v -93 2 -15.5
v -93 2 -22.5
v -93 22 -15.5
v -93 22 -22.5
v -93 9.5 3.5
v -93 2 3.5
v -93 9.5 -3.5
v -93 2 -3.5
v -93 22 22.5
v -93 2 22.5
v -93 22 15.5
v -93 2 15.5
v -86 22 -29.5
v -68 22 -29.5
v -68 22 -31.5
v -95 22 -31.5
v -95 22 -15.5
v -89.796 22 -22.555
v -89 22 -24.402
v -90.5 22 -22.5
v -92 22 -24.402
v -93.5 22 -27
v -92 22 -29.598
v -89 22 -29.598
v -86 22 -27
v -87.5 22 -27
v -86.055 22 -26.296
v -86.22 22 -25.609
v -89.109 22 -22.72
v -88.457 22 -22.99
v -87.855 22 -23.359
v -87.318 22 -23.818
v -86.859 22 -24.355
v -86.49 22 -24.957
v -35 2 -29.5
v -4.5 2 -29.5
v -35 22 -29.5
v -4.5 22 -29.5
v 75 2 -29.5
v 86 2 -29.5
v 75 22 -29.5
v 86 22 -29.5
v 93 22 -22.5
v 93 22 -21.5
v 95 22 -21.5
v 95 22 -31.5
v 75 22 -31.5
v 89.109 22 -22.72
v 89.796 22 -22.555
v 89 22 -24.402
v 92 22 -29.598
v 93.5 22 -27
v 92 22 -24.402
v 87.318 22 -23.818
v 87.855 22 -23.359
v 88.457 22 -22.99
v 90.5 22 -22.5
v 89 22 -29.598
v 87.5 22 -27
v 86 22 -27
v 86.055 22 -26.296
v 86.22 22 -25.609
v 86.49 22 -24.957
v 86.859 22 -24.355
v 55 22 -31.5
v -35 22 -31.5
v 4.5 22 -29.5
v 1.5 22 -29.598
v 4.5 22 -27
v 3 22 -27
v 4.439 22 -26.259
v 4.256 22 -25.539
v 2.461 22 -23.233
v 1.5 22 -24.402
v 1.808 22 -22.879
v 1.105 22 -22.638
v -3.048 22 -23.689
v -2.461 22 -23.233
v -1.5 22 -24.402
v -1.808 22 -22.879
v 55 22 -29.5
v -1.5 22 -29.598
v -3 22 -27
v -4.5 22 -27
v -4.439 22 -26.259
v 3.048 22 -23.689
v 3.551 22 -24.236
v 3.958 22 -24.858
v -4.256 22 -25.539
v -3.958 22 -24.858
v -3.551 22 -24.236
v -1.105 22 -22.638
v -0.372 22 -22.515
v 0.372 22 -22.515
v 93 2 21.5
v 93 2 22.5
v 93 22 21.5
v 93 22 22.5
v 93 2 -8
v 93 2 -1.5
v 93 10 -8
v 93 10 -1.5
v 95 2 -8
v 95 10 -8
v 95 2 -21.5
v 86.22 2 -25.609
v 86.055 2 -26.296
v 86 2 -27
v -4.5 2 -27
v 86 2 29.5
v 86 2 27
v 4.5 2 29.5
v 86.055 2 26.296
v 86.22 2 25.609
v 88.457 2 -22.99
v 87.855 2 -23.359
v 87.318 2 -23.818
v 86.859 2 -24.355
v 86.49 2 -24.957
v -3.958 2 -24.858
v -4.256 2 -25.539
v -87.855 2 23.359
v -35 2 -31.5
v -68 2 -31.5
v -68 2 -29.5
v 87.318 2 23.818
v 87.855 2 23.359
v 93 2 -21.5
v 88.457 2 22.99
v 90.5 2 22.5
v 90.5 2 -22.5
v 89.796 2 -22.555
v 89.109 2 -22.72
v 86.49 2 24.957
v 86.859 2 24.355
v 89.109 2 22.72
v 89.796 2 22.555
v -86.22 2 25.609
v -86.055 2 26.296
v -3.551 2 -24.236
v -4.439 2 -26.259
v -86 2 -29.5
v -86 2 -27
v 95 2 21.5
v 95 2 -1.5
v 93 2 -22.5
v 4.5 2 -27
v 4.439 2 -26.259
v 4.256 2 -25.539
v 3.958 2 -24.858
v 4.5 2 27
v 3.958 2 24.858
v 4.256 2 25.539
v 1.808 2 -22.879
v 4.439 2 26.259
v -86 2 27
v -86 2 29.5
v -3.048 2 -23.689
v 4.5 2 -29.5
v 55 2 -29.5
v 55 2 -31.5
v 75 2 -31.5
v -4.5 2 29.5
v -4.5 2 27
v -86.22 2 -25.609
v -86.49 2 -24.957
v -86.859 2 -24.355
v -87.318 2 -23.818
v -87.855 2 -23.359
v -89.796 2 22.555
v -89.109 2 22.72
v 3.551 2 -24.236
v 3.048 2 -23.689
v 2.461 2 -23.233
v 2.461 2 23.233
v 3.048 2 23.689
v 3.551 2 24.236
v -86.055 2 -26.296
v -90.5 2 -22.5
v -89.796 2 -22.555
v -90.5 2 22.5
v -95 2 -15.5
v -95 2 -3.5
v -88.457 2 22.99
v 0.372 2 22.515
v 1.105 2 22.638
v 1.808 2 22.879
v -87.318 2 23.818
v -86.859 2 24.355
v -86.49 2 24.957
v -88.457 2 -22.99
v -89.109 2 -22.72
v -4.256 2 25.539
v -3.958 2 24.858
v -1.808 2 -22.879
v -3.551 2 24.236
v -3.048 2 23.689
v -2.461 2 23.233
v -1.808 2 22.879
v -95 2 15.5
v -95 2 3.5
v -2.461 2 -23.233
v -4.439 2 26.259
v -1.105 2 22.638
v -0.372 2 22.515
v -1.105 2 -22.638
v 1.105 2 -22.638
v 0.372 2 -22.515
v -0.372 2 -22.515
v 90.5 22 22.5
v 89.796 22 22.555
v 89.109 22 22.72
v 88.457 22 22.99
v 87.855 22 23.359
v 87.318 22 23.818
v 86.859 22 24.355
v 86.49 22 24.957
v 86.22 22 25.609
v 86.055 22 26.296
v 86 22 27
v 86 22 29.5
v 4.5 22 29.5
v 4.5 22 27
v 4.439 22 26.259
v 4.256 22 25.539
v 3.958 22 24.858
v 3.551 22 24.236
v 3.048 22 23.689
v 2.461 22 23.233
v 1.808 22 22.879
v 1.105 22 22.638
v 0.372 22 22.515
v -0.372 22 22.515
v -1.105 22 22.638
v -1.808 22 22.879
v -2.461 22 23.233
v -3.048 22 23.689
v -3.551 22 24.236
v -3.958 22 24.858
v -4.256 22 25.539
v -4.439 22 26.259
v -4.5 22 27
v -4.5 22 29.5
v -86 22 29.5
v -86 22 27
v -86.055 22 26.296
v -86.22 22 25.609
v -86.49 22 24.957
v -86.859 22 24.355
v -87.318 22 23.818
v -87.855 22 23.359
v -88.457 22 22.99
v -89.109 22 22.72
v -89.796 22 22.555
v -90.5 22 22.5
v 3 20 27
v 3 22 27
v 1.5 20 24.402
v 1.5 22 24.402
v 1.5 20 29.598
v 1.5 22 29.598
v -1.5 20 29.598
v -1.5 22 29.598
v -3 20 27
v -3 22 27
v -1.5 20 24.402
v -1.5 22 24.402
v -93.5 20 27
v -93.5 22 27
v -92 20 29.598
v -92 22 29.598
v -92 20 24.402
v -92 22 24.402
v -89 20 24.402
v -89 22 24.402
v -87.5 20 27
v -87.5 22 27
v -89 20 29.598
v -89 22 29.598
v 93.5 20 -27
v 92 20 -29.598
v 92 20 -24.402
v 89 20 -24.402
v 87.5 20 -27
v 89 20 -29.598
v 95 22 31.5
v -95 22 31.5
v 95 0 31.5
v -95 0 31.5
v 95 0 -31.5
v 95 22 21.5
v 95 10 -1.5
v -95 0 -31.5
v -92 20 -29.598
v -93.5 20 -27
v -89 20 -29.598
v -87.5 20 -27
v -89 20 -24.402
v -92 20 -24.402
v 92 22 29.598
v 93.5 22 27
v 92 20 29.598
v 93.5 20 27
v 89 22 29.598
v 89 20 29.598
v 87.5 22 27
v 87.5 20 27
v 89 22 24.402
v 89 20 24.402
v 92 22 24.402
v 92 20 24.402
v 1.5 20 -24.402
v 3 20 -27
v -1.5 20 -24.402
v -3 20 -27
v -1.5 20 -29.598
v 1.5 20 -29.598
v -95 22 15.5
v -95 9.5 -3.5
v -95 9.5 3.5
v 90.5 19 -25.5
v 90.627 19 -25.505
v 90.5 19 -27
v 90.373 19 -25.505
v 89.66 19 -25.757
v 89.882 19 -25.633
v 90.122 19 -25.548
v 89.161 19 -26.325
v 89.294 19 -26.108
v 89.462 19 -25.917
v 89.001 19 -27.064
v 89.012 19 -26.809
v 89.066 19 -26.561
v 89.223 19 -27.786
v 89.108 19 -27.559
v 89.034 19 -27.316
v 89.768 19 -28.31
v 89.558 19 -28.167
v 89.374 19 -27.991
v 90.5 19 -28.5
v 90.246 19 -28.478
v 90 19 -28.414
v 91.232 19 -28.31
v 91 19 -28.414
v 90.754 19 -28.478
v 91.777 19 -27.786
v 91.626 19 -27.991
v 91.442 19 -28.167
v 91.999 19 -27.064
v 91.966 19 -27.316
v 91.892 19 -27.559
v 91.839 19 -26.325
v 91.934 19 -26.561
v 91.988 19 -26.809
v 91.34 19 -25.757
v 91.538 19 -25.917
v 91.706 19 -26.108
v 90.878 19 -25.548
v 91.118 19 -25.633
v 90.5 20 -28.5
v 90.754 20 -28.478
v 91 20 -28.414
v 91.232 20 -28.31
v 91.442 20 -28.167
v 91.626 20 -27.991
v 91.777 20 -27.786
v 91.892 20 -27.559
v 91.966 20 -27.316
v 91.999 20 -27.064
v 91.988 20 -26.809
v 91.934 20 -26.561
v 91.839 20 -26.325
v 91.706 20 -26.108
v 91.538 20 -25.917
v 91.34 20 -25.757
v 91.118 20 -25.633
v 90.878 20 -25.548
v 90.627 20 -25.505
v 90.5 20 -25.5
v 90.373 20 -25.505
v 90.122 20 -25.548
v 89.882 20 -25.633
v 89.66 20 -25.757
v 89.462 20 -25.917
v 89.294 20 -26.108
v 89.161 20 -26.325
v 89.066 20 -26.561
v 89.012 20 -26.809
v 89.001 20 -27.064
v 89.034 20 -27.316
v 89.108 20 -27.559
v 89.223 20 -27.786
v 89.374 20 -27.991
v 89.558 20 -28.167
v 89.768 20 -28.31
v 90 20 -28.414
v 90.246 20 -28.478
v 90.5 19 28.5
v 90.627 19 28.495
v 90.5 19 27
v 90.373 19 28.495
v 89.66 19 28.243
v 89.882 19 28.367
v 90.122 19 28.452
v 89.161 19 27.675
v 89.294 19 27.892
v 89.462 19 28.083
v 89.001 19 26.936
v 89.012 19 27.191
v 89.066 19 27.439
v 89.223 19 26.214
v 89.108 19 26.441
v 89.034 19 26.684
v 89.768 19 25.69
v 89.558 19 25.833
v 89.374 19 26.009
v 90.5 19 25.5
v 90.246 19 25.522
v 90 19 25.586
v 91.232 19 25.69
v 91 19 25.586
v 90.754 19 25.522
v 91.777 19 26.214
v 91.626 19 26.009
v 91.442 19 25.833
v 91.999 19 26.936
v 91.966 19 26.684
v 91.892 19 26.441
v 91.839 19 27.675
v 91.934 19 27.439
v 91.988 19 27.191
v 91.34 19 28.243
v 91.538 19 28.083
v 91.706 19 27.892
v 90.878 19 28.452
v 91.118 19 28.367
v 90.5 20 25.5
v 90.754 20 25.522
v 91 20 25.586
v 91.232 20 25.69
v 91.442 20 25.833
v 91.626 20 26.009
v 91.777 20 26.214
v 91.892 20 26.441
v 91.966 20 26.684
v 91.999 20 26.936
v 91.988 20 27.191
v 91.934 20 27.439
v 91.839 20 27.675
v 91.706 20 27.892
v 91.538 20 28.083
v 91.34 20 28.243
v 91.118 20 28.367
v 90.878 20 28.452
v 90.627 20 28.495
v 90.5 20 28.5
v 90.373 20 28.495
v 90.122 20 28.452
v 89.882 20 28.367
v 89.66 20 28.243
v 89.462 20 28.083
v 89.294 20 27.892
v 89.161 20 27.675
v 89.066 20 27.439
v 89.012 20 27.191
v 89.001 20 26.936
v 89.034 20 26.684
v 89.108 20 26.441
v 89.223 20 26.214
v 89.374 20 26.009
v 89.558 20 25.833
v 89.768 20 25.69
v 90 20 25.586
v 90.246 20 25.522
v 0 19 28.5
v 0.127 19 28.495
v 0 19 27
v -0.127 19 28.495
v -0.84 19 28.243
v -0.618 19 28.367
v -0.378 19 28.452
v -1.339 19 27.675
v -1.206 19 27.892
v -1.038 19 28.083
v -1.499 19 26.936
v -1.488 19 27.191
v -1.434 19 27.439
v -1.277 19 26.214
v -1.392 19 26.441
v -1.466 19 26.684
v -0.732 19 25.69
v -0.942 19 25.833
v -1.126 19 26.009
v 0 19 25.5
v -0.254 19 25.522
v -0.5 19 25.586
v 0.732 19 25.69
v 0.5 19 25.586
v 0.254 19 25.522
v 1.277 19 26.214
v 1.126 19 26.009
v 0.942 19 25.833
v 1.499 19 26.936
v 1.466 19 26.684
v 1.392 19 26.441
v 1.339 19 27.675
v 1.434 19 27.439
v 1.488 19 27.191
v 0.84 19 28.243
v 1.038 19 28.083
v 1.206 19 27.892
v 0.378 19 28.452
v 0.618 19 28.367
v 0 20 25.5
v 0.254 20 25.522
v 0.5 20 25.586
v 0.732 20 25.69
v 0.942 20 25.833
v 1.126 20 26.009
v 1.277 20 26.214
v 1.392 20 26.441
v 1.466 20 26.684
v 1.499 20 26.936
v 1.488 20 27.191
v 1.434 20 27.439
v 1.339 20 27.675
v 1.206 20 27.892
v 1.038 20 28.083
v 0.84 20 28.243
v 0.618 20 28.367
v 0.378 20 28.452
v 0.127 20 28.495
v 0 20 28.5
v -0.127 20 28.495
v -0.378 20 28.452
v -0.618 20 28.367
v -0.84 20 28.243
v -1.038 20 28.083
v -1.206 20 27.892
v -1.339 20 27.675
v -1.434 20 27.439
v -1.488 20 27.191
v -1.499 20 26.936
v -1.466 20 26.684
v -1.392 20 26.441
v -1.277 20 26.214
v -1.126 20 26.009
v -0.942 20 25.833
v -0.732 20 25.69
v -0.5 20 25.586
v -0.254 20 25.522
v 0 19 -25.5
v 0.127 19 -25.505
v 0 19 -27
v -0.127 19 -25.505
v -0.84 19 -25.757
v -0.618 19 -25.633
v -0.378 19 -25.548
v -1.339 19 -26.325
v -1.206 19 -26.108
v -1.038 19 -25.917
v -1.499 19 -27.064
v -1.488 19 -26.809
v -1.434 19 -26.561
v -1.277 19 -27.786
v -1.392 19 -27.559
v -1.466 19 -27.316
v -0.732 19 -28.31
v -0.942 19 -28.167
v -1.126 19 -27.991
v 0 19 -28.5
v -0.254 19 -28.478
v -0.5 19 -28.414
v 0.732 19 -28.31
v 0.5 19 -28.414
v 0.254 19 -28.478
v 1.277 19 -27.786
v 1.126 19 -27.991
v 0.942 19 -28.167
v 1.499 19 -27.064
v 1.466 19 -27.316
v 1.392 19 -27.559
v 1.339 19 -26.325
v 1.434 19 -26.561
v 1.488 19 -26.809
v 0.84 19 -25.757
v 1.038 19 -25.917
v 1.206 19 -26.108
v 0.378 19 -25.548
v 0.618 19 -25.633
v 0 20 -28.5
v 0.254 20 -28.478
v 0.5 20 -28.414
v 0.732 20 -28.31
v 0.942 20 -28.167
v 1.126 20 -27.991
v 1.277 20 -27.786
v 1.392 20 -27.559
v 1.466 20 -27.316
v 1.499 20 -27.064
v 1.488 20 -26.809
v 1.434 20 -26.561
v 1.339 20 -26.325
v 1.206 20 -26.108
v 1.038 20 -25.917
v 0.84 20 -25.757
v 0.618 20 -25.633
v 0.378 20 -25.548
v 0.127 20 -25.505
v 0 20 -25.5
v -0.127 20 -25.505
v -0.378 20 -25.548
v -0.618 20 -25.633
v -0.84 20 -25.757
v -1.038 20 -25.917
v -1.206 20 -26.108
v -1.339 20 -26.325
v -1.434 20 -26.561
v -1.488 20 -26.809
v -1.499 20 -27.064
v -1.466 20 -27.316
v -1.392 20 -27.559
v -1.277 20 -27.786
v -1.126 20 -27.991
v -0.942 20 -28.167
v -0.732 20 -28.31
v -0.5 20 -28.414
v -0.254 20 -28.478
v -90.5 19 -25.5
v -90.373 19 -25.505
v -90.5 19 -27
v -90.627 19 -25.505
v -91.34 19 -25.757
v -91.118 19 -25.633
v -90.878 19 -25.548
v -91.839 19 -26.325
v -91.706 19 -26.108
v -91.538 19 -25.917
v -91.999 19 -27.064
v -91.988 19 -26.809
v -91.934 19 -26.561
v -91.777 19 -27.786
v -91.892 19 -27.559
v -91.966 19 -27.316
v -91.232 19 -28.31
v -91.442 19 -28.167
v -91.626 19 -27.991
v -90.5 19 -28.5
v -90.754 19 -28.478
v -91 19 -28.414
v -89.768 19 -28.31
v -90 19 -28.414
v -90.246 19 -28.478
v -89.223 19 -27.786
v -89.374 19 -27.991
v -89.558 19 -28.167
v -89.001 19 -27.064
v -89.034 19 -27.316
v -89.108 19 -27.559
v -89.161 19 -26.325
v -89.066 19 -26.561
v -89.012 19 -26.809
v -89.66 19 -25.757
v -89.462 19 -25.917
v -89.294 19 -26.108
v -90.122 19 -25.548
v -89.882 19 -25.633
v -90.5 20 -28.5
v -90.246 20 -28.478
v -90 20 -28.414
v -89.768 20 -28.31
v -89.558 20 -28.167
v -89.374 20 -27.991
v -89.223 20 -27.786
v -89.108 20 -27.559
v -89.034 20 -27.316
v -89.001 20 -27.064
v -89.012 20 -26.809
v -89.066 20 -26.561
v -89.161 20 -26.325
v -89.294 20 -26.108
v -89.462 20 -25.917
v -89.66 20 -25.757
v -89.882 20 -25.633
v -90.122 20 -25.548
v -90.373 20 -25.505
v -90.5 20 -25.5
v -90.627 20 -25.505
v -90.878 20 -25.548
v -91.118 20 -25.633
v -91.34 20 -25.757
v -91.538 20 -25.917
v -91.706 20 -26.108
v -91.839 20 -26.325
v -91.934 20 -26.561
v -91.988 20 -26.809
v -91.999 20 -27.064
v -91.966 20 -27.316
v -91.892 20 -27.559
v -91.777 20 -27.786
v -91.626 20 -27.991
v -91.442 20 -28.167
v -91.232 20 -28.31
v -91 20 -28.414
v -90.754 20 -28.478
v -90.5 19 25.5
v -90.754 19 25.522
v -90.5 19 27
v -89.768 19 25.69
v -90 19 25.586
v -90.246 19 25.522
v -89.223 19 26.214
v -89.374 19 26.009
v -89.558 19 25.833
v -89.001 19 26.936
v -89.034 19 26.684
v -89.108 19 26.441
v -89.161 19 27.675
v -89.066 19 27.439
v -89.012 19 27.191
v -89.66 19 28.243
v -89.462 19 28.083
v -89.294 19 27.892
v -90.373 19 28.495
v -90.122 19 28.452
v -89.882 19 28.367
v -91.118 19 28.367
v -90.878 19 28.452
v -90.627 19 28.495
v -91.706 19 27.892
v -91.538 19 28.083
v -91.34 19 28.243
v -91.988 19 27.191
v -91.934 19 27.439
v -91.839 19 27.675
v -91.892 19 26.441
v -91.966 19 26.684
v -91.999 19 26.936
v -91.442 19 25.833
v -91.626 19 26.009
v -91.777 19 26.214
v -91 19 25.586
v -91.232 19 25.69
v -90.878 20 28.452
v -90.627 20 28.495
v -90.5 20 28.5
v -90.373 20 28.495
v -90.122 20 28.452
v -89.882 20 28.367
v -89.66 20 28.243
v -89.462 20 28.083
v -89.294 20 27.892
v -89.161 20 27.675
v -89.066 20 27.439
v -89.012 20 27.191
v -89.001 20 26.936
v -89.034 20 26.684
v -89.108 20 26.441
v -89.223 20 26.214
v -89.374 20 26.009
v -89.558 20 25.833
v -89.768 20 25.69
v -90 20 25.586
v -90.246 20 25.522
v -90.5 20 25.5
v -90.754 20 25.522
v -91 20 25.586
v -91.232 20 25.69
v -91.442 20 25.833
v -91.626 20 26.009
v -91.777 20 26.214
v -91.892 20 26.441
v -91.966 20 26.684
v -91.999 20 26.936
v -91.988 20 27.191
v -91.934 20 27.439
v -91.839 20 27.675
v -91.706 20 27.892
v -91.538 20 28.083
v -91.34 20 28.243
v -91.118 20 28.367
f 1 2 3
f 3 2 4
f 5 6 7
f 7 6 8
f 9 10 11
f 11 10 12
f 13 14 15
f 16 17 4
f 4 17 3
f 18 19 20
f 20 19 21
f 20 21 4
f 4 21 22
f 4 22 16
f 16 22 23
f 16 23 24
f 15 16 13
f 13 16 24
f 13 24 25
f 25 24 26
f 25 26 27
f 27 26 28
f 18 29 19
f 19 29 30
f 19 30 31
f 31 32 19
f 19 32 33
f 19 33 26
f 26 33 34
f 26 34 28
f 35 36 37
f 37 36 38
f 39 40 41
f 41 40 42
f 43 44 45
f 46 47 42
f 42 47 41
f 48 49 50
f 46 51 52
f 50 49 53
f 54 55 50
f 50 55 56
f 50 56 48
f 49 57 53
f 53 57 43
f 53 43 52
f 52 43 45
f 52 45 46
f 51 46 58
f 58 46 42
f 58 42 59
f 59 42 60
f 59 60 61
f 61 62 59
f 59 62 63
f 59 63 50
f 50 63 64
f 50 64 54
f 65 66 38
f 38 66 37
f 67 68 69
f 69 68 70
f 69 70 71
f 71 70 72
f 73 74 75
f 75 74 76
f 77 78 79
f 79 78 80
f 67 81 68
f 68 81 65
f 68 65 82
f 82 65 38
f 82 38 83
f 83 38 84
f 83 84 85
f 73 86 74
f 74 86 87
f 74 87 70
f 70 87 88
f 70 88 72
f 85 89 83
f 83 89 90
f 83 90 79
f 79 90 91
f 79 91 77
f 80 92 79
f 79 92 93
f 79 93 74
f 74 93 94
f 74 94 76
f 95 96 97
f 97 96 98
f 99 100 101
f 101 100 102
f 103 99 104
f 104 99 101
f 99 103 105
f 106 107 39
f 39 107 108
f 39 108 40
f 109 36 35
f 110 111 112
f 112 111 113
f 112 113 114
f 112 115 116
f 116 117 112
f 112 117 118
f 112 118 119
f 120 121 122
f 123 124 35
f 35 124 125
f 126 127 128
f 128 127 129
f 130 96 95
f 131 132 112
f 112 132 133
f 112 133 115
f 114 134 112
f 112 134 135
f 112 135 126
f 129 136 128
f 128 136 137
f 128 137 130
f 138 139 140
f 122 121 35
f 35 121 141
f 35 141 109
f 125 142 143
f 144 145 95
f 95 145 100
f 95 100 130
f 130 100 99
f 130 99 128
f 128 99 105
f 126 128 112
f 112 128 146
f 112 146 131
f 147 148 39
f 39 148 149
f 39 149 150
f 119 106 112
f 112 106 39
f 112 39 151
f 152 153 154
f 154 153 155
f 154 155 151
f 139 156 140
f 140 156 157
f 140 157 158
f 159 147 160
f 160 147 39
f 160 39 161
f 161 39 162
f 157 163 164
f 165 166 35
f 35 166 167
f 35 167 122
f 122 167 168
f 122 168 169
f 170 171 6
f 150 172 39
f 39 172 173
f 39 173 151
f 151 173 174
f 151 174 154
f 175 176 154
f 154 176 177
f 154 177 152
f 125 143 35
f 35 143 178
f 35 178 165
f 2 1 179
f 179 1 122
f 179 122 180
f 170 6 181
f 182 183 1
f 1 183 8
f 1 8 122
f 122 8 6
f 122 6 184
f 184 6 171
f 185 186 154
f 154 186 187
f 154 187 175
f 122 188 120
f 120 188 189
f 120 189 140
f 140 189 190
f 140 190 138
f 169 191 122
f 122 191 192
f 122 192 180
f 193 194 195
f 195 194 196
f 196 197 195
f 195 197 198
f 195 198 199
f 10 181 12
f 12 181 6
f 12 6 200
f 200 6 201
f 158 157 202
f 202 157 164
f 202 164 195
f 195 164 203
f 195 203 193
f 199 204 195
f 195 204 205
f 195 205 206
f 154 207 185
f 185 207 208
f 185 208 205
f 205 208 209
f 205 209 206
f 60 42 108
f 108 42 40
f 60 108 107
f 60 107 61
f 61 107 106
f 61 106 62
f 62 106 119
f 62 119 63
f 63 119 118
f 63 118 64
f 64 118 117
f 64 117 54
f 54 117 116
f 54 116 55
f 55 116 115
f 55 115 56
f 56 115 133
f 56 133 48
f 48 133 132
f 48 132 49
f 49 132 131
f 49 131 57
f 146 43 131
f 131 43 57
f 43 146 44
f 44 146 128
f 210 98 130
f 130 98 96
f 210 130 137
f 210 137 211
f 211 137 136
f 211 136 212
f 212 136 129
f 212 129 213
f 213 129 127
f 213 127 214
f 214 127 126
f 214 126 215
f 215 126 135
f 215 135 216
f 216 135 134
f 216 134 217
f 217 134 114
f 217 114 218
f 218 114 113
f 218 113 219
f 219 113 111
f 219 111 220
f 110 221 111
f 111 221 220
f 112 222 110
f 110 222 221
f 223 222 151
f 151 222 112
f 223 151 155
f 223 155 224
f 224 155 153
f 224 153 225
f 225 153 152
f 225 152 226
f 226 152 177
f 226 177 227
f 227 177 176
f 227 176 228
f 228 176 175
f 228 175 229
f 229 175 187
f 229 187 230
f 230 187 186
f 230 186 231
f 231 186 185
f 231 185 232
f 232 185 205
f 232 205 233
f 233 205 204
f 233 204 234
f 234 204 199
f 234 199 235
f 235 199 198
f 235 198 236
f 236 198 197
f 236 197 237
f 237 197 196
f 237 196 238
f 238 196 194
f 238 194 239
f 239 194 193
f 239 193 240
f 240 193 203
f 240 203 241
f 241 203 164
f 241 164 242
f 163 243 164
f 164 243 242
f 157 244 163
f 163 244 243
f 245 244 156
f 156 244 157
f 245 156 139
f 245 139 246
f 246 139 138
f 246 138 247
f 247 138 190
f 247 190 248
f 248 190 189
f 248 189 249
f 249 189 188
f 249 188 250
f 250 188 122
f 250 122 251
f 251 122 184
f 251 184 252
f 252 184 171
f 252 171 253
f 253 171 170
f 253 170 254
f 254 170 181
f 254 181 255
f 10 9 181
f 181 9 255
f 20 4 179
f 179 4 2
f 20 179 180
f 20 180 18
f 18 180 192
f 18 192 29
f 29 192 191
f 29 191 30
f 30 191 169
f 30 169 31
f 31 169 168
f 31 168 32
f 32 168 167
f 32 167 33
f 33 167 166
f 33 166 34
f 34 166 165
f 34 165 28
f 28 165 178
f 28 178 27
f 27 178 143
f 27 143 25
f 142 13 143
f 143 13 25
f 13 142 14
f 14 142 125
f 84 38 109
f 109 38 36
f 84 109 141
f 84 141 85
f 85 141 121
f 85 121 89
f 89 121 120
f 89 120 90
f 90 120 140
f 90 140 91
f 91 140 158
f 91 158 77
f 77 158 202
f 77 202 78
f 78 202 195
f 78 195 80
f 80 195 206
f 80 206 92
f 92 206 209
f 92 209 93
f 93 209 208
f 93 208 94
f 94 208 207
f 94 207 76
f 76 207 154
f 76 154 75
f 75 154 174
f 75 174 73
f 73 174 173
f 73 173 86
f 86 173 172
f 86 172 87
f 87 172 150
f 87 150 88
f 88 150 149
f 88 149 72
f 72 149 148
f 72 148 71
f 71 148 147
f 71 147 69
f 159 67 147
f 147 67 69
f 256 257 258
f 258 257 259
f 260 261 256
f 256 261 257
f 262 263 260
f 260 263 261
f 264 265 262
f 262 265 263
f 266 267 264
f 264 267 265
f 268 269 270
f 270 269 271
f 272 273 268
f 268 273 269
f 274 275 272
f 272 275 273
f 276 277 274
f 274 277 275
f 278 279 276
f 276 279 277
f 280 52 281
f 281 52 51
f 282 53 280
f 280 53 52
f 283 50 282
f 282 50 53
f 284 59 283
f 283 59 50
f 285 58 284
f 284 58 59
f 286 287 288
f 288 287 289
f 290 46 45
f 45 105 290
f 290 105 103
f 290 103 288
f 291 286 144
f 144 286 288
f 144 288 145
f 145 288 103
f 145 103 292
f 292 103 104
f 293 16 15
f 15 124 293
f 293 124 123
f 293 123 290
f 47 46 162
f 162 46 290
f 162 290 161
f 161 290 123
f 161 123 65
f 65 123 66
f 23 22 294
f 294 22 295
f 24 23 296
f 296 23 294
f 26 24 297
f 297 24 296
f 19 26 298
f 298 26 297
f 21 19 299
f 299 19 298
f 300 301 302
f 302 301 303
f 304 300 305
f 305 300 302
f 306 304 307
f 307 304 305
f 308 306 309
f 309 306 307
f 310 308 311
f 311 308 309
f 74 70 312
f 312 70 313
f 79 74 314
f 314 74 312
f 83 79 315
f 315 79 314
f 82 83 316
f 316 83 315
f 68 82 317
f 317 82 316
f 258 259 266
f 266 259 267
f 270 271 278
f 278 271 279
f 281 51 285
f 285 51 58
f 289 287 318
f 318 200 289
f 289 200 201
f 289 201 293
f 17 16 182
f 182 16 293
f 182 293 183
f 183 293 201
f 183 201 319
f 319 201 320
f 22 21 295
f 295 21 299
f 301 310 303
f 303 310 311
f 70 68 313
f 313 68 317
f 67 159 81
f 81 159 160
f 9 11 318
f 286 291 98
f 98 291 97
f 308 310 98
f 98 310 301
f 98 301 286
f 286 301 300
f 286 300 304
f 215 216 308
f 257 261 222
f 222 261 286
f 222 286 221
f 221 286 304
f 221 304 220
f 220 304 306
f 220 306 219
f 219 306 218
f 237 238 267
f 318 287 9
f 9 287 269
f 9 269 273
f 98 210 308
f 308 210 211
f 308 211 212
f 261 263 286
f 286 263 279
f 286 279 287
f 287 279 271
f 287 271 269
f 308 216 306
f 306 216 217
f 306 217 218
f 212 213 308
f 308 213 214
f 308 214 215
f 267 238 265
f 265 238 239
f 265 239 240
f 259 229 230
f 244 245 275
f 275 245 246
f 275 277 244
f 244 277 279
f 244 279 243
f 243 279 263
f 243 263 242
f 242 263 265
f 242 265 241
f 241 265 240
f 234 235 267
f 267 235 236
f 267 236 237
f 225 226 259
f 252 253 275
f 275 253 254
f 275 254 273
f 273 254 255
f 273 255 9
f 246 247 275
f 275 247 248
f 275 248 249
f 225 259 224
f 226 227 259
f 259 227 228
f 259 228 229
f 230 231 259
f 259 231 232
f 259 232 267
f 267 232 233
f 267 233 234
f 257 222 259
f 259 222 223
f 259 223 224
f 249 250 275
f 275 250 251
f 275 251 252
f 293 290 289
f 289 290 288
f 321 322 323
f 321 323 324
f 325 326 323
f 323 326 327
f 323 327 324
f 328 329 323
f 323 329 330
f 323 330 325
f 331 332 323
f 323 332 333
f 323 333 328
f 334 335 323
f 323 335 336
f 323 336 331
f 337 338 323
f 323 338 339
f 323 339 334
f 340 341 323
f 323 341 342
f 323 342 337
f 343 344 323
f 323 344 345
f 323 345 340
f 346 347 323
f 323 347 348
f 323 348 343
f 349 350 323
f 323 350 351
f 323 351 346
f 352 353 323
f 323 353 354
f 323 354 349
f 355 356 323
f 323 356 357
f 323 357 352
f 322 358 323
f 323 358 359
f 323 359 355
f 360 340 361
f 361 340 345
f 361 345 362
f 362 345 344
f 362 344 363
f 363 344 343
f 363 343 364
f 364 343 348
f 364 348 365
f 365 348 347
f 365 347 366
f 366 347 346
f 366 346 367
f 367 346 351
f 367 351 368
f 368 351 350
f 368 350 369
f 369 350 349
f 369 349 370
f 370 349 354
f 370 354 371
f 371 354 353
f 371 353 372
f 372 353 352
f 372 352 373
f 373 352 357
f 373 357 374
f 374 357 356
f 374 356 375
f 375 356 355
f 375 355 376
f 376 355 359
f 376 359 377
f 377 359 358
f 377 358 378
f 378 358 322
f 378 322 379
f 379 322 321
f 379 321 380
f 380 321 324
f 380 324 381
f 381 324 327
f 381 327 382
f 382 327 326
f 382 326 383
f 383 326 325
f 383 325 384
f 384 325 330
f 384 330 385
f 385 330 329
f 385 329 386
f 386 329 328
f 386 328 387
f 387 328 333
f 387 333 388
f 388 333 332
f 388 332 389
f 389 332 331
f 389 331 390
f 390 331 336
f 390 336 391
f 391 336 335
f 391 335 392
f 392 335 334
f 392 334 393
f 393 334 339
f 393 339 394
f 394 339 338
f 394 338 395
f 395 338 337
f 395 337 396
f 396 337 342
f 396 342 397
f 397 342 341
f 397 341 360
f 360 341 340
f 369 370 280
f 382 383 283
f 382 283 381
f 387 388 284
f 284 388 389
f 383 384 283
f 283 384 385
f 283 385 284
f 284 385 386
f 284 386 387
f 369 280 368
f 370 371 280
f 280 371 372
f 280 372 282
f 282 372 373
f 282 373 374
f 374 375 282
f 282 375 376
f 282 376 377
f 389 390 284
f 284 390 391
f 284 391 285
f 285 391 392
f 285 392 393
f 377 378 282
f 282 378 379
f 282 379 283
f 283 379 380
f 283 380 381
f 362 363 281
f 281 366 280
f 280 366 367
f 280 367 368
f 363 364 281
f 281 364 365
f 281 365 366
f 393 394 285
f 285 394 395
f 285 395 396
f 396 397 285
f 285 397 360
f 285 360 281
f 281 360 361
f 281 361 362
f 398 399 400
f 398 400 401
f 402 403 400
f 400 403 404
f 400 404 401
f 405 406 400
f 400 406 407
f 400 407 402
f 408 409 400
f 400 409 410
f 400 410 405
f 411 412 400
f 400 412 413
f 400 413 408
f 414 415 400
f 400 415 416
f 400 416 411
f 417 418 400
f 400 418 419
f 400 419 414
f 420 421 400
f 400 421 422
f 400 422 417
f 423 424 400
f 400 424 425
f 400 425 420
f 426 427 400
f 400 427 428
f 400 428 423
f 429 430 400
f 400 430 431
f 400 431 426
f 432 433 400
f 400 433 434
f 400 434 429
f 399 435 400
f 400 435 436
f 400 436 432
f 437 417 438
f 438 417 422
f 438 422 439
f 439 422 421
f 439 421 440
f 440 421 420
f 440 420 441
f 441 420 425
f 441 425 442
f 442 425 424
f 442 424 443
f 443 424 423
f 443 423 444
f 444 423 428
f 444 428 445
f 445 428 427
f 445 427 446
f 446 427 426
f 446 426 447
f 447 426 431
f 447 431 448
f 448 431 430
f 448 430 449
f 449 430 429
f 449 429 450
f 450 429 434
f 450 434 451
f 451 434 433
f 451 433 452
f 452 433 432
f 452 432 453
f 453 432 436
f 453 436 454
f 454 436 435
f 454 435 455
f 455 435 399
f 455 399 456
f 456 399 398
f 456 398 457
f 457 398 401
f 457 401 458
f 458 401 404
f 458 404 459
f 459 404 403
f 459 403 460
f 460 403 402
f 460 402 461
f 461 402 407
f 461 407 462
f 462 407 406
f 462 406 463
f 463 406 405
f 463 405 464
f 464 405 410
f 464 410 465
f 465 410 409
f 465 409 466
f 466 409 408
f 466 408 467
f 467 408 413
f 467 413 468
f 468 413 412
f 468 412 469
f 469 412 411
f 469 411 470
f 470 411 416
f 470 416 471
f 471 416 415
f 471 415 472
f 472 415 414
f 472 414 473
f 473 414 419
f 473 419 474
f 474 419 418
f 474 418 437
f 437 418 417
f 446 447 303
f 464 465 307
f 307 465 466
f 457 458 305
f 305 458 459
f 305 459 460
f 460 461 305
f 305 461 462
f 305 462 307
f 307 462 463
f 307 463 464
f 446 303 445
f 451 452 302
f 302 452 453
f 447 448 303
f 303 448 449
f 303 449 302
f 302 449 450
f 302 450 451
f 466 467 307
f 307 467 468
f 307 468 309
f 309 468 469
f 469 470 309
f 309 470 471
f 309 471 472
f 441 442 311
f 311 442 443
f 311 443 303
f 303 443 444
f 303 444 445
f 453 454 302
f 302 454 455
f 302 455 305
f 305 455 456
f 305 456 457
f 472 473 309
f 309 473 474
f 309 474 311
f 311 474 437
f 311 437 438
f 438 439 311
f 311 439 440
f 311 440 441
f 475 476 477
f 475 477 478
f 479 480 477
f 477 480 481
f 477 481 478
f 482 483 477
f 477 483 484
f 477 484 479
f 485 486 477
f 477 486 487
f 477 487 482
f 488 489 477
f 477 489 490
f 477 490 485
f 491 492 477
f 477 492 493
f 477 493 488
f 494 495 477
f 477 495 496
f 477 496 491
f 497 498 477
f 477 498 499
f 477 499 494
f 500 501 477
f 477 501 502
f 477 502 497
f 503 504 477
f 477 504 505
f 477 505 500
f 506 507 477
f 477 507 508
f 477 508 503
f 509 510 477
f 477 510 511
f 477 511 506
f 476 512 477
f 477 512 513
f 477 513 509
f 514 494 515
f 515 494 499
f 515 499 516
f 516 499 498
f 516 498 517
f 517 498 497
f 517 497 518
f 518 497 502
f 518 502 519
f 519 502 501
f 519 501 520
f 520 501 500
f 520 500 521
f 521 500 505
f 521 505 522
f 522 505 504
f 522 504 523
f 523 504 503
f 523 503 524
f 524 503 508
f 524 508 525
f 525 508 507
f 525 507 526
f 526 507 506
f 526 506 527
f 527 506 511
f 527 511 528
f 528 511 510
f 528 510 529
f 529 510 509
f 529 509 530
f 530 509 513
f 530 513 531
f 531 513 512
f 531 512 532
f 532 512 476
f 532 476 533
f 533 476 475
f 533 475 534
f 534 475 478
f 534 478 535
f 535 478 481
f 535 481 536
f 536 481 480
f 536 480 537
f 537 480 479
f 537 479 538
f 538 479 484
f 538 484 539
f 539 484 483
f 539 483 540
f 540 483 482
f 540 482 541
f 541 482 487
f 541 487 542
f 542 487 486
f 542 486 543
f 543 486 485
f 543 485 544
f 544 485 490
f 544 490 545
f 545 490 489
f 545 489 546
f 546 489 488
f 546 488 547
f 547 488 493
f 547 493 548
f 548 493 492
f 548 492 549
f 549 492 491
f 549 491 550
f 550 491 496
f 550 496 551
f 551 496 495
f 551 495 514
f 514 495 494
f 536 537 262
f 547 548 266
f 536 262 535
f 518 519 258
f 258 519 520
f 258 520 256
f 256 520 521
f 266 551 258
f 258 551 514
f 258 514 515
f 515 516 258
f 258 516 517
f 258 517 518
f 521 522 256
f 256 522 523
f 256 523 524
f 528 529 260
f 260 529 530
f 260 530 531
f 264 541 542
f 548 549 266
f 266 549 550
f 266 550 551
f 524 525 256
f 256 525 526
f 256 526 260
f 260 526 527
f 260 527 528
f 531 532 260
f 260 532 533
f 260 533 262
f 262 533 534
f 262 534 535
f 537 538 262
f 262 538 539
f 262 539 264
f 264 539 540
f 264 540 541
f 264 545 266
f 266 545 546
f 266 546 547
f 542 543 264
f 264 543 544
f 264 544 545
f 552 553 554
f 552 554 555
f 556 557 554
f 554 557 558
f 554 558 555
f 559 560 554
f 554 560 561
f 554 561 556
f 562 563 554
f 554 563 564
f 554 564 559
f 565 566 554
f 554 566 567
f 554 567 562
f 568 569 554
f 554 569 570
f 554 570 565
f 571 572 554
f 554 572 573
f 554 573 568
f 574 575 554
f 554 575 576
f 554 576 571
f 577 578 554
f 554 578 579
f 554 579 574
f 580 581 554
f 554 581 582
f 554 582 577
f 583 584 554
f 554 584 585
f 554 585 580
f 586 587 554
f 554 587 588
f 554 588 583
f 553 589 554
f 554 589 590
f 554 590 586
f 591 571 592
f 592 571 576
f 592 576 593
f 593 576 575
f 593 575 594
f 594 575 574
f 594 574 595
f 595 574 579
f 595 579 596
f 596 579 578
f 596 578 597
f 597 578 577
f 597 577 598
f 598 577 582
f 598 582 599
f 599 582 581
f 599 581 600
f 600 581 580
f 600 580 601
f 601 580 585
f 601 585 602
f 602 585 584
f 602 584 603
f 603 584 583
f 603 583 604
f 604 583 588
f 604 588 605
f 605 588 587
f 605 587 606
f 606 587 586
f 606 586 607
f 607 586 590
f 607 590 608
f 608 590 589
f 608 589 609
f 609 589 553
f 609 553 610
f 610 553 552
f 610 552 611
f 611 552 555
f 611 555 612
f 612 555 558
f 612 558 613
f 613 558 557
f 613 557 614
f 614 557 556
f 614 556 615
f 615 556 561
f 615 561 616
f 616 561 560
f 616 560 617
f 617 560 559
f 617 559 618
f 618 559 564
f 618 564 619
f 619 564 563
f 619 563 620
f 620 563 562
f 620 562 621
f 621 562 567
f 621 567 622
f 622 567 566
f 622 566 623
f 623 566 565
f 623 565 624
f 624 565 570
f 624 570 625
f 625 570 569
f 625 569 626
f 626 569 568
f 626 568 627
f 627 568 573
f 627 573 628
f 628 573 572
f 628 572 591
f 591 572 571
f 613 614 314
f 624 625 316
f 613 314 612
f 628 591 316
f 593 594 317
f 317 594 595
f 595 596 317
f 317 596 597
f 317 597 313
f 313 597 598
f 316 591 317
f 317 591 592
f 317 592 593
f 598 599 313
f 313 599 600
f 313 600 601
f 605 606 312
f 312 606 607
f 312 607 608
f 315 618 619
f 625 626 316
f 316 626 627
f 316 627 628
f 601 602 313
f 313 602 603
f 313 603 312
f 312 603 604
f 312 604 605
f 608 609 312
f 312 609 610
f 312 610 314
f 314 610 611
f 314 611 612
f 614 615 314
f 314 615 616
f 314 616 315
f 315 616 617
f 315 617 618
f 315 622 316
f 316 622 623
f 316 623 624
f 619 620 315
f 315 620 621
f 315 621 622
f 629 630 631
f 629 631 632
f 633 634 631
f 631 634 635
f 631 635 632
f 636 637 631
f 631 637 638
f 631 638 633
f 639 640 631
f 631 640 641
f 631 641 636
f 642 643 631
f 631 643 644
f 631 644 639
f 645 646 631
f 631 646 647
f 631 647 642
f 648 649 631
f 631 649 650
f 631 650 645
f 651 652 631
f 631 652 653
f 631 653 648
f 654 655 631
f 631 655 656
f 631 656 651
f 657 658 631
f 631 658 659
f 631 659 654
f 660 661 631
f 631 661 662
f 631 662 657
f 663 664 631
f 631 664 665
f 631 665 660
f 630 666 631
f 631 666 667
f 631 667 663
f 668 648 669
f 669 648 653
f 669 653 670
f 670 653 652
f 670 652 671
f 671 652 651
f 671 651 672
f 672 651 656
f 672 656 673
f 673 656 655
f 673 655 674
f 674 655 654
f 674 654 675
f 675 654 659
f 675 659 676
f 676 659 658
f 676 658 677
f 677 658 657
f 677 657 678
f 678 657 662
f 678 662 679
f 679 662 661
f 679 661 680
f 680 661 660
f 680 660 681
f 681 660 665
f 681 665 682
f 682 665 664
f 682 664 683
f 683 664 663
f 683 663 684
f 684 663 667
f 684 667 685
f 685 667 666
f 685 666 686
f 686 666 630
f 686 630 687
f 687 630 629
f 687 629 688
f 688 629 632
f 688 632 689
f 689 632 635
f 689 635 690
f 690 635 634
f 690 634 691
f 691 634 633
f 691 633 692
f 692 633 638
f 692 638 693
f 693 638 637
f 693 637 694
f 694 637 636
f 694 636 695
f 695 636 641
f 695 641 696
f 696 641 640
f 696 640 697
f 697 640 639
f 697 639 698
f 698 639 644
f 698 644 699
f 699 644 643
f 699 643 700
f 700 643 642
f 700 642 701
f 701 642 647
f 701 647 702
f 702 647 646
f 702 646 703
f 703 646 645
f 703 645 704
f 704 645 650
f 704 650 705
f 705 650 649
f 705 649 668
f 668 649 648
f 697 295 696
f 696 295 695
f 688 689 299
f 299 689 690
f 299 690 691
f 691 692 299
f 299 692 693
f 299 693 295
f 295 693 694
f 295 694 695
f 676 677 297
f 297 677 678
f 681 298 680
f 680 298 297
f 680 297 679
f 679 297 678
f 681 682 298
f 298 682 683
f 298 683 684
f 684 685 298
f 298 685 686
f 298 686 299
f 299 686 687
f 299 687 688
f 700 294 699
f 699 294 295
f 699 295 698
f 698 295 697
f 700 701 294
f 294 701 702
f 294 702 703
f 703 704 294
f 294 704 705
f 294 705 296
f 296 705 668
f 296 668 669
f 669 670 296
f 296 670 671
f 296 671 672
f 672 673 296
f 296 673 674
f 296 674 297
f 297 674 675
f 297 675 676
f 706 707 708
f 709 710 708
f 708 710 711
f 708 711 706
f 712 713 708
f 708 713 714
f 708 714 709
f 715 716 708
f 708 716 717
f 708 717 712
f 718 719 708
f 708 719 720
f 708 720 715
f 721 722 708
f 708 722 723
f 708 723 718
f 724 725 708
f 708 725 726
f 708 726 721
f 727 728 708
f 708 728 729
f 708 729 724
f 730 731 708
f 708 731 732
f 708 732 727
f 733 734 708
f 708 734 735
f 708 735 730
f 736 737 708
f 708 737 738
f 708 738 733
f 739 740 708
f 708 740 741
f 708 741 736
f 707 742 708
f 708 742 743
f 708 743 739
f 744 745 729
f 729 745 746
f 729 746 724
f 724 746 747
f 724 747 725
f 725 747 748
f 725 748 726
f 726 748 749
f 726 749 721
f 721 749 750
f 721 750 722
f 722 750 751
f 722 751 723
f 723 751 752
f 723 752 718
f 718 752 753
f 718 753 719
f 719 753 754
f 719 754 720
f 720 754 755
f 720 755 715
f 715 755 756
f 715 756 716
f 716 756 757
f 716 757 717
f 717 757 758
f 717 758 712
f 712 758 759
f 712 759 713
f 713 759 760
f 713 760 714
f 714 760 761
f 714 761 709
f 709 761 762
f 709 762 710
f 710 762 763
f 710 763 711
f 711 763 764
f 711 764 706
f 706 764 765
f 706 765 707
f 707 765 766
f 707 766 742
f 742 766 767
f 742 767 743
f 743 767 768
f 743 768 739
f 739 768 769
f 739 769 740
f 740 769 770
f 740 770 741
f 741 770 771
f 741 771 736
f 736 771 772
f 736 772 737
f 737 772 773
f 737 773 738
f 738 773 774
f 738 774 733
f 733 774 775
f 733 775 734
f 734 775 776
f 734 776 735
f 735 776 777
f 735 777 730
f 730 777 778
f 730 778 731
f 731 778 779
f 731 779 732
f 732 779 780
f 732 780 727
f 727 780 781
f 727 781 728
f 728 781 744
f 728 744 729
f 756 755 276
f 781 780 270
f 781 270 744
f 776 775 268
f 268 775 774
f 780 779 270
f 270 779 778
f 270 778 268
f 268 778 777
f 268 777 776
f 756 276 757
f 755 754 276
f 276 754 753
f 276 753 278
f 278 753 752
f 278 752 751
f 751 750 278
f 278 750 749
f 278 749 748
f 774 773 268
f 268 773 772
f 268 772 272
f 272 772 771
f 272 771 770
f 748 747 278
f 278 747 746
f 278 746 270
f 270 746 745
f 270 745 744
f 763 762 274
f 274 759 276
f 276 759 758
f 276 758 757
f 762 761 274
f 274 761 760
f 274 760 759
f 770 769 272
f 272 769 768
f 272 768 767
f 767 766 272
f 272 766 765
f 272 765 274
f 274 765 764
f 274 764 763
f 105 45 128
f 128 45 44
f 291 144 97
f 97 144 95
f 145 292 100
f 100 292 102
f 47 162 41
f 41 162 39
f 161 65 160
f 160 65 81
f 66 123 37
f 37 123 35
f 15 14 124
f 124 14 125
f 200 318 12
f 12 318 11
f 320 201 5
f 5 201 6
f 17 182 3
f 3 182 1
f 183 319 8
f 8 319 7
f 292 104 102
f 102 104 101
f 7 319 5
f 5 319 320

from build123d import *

# Parameters (mm, degrees)
BOSS_EXTRUDE1_DEPTH     = 2
SKETCH1_4_R             = 1.5
BOSS_EXTRUDE2_DEPTH     = 19
BOSS_EXTRUDE2_2_DEPTH   = 19
BOSS_EXTRUDE2_3_DEPTH   = 19
BOSS_EXTRUDE2_4_DEPTH   = 19
BOSS_EXTRUDE2_5_DEPTH   = 19
BOSS_EXTRUDE2_6_DEPTH   = 19
SKETCH1_5_R             = 1.5
BOSS_EXTRUDE3_DEPTH     = 20
BOSS_EXTRUDE4_DEPTH     = 22
SKETCH2_W               = 23
SKETCH2_H               = 8
SKETCH2_W_2             = 13.5
SKETCH2_H_2             = 13.3
CUT_EXTRUDE1_DEPTH      = 3
SKETCH3_W               = 20
SKETCH3_H               = 12
SKETCH3_W_2             = 33
CUT_EXTRUDE2_DEPTH      = 3
SKETCH4_W               = 12
SKETCH4_H               = 7.5
CUT_EXTRUDE3_DEPTH      = 3
CUT_EXTRUDE4_DEPTH      = 1
CUT_EXTRUDE4_DEPTH_BACK = 2
SKETCH6_W               = 20
SKETCH6_H               = 8
SKETCH6_W_2             = 33
CUT_EXTRUDE5_DEPTH      = 2
CUT_EXTRUDE6_DEPTH      = 1
CUT_EXTRUDE6_DEPTH_BACK = 2


with BuildPart() as part:
    # Sketch1 → Boss-Extrude1 (new body)
    with BuildSketch(Plane(origin=(0, 0, 0), x_dir=(1, 0, 0), z_dir=(0, 1, 0))):
        with BuildLine():
            ThreePointArc((86, 27), (87.318019485, 23.818019485), (90.5, 22.5))
            Line((90.5, 22.5), (93, 22.5))
            Line((93, 22.5), (93, -22.5))
            Line((93, -22.5), (90.5, -22.5))
            ThreePointArc((90.5, -22.5), (87.318019485, -23.818019485), (86, -27))
            Line((86, -27), (86, -29.5))
            Line((86, -29.5), (4.5, -29.5))
            Line((4.5, -29.5), (4.5, -27))
            ThreePointArc((4.5, -27), (0, -22.5), (-4.5, -27))
            Line((-4.5, -27), (-4.5, -29.5))
            Line((-4.5, -29.5), (-86, -29.5))
            Line((-86, -29.5), (-86, -27))
            ThreePointArc((-86, -27), (-87.318019485, -23.818019485), (-90.5, -22.5))
            Line((-90.5, -22.5), (-93, -22.5))
            Line((-93, -22.5), (-93, 22.5))
            Line((-93, 22.5), (-90.5, 22.5))
            ThreePointArc((-90.5, 22.5), (-87.318019485, 23.818019485), (-86, 27))
            Line((-86, 27), (-86, 29.5))
            Line((-86, 29.5), (-4.5, 29.5))
            Line((-4.5, 29.5), (-4.5, 27))
            ThreePointArc((-4.5, 27), (0, 22.5), (4.5, 27))
            Line((4.5, 27), (4.5, 29.5))
            Line((4.5, 29.5), (86, 29.5))
            Line((86, 29.5), (86, 27))
        make_face()
    extrude(amount=BOSS_EXTRUDE1_DEPTH)



with BuildPart() as body_2:
    # Sketch1<4> → Boss-Extrude2 (new body)
    with BuildSketch(Plane(origin=(0, 0, 0), x_dir=(1, 0, 0), z_dir=(0, 1, 0))):
        with Locations((90.5, 27)):
            Circle(SKETCH1_4_R)
    extrude(amount=BOSS_EXTRUDE2_DEPTH)



with BuildPart() as body_3:
    # Sketch1<4> → Boss-Extrude2 2 (new body)
    with BuildSketch(Plane(origin=(0, 0, 0), x_dir=(1, 0, 0), z_dir=(0, 1, 0))):
        with Locations((90.5, -27)):
            Circle(SKETCH1_4_R)
    extrude(amount=BOSS_EXTRUDE2_2_DEPTH)


with BuildPart() as body_4:
    # Sketch1<4> → Boss-Extrude2 3 (new body)
    with BuildSketch(Plane(origin=(0, 0, 0), x_dir=(1, 0, 0), z_dir=(0, 1, 0))):
        with Locations((0, -27)):
            Circle(SKETCH1_4_R)
    extrude(amount=BOSS_EXTRUDE2_3_DEPTH)


with BuildPart() as body_5:
    # Sketch1<4> → Boss-Extrude2 4 (new body)
    with BuildSketch(Plane(origin=(0, 0, 0), x_dir=(1, 0, 0), z_dir=(0, 1, 0))):
        with Locations((0, 27)):
            Circle(SKETCH1_4_R)
    extrude(amount=BOSS_EXTRUDE2_4_DEPTH)


with BuildPart() as body_6:
    # Sketch1<4> → Boss-Extrude2 5 (new body)
    with BuildSketch(Plane(origin=(0, 0, 0), x_dir=(1, 0, 0), z_dir=(0, 1, 0))):
        with Locations((-90.5, 27)):
            Circle(SKETCH1_4_R)
    extrude(amount=BOSS_EXTRUDE2_5_DEPTH)


with BuildPart() as body_7:
    # Sketch1<4> → Boss-Extrude2 6 (new body)
    with BuildSketch(Plane(origin=(0, 0, 0), x_dir=(1, 0, 0), z_dir=(0, 1, 0))):
        with Locations((-90.5, -27)):
            Circle(SKETCH1_4_R)
    extrude(amount=BOSS_EXTRUDE2_6_DEPTH)


with BuildPart() as body_2_1:
    add(body_2.part)

    add(body_3.part)  # Boss-Extrude3 merges body 3

    add(body_4.part)  # Boss-Extrude3 merges body 4

    add(body_5.part)  # Boss-Extrude3 merges body 5

    add(body_6.part)  # Boss-Extrude3 merges body 6

    add(body_7.part)  # Boss-Extrude3 merges body 7
    # Sketch1<5> → Boss-Extrude3 (add)
    with BuildSketch(Plane(origin=(0, 0, 0), x_dir=(1, 0, 0), z_dir=(0, 1, 0))):
        Polygon((93.5, 27), (92, 24.401923789), (89, 24.401923789), (87.5, 27), (89, 29.598076211), (92, 29.598076211), align=None)
        with Locations((90.5, 27)):
            Circle(SKETCH1_5_R, mode=Mode.SUBTRACT)
        Polygon((89, -29.598076211), (92, -29.598076211), (93.5, -27), (92, -24.401923789), (89, -24.401923789), (87.5, -27), align=None)
        with Locations((90.5, -27)):
            Circle(SKETCH1_5_R, mode=Mode.SUBTRACT)
        Polygon((3, -27), (1.5, -29.598076211), (-1.5, -29.598076211), (-3, -27), (-1.5, -24.401923789), (1.5, -24.401923789), align=None)
        with Locations((0, -27)):
            Circle(SKETCH1_5_R, mode=Mode.SUBTRACT)
        Polygon((-1.5, 24.401923789), (1.5, 24.401923789), (3, 27), (1.5, 29.598076211), (-1.5, 29.598076211), (-3, 27), align=None)
        with Locations((0, 27)):
            Circle(SKETCH1_5_R, mode=Mode.SUBTRACT)
        Polygon((-93.5, -27), (-92, -24.401923789), (-89, -24.401923789), (-87.5, -27), (-89, -29.598076211), (-92, -29.598076211), align=None)
        with Locations((-90.5, -27)):
            Circle(SKETCH1_5_R, mode=Mode.SUBTRACT)
        Polygon((-89, 29.598076211), (-92, 29.598076211), (-93.5, 27), (-92, 24.401923789), (-89, 24.401923789), (-87.5, 27), align=None)
        with Locations((-90.5, 27)):
            Circle(SKETCH1_5_R, mode=Mode.SUBTRACT)
    extrude(amount=BOSS_EXTRUDE3_DEPTH)


with BuildPart() as part_1:
    add(part.part)

    add(body_2_1.part)  # Boss-Extrude4 merges body 2
    # Sketch1<6> → Boss-Extrude4 (add)
    with BuildSketch(Plane(origin=(0, 0, 0), x_dir=(1, 0, 0), z_dir=(0, 1, 0))):
        Polygon((-95, -22.5), (-95, -31.5), (-86, -31.5), (86, -31.5), (95, -31.5), (95, -22.5), (95, 22.5), (95, 31.5), (86, 31.5), (4.5, 31.5), (-4.5, 31.5), (-86, 31.5), (-95, 31.5), (-95, 22.5), align=None)
        Polygon((-89, -29.598076211), (-92, -29.598076211), (-93.5, -27), (-92, -24.401923789), (-89, -24.401923789), (-87.5, -27), align=None, mode=Mode.SUBTRACT)
        Polygon((-1.5, -24.401923789), (1.5, -24.401923789), (3, -27), (1.5, -29.598076211), (-1.5, -29.598076211), (-3, -27), align=None, mode=Mode.SUBTRACT)
        Polygon((92, -29.598076211), (89, -29.598076211), (87.5, -27), (89, -24.401923789), (92, -24.401923789), (93.5, -27), align=None, mode=Mode.SUBTRACT)
        Polygon((-92, 24.401923789), (-93.5, 27), (-92, 29.598076211), (-89, 29.598076211), (-87.5, 27), (-89, 24.401923789), align=None, mode=Mode.SUBTRACT)
        Polygon((1.5, 29.598076211), (3, 27), (1.5, 24.401923789), (-1.5, 24.401923789), (-3, 27), (-1.5, 29.598076211), align=None, mode=Mode.SUBTRACT)
        with BuildLine():
            Line((-93, -22.5), (-93, 22.5))
            Line((-93, 22.5), (-90.5, 22.5))
            ThreePointArc((-90.5, 22.5), (-87.318019485, 23.818019485), (-86, 27))
            Line((-86, 27), (-86, 29.5))
            Line((-86, 29.5), (-4.5, 29.5))
            Line((-4.5, 29.5), (-4.5, 27))
            ThreePointArc((-4.5, 27), (0, 22.5), (4.5, 27))
            Line((4.5, 27), (4.5, 29.5))
            Line((4.5, 29.5), (86, 29.5))
            Line((86, 29.5), (86, 27))
            ThreePointArc((86, 27), (87.318019485, 23.818019485), (90.5, 22.5))
            Line((90.5, 22.5), (93, 22.5))
            Line((93, 22.5), (93, -22.5))
            Line((93, -22.5), (90.5, -22.5))
            ThreePointArc((90.5, -22.5), (87.318019485, -23.818019485), (86, -27))
            Line((86, -27), (86, -29.5))
            Line((86, -29.5), (4.5, -29.5))
            Line((4.5, -29.5), (4.5, -27))
            ThreePointArc((4.5, -27), (0, -22.5), (-4.5, -27))
            Line((-4.5, -27), (-4.5, -29.5))
            Line((-4.5, -29.5), (-86, -29.5))
            Line((-86, -29.5), (-86, -27))
            ThreePointArc((-86, -27), (-87.318019485, -23.818019485), (-90.5, -22.5))
            Line((-90.5, -22.5), (-93, -22.5))
        make_face(mode=Mode.SUBTRACT)
        Polygon((89, 29.598076211), (92, 29.598076211), (93.5, 27), (92, 24.401923789), (89, 24.401923789), (87.5, 27), align=None, mode=Mode.SUBTRACT)
    extrude(amount=BOSS_EXTRUDE4_DEPTH)

    # Sketch2 → Cut-Extrude1 (cut)
    with BuildSketch(Plane(origin=(95, 0, 0), x_dir=(0, 0, -1), z_dir=(1, 0, 0))):
        with Locations((-10, 6)):
            Rectangle(SKETCH2_W, SKETCH2_H)
        with Locations((14.75, 8.65)):
            Rectangle(SKETCH2_W_2, SKETCH2_H_2)
    extrude(amount=-CUT_EXTRUDE1_DEPTH, mode=Mode.SUBTRACT)

    # Sketch3 → Cut-Extrude2 (cut)
    with BuildSketch(Plane(origin=(0, 0, -31.5), x_dir=(-1, 0, 0), z_dir=(0, 0, -1))):
        with Locations((-65, 8)):
            Rectangle(SKETCH3_W, SKETCH3_H)
        with Locations((51.5, 8)):
            Rectangle(SKETCH3_W_2, SKETCH3_H)
    extrude(amount=-CUT_EXTRUDE2_DEPTH, mode=Mode.SUBTRACT)

    # Sketch4 → Cut-Extrude3 (cut)
    with BuildSketch(Plane.ZY.offset(95)):
        with Locations((-9.5, 5.75)):
            Rectangle(SKETCH4_W, SKETCH4_H)
        with Locations((9.5, 5.75)):
            Rectangle(SKETCH4_W, SKETCH4_H)
    extrude(amount=-CUT_EXTRUDE3_DEPTH, mode=Mode.SUBTRACT)

    # Sketch5 → Cut-Extrude4 (cut, two sides)
    with BuildSketch(Plane(origin=(95, 0, 0), x_dir=(0, 0, -1), z_dir=(1, 0, 0))) as cut_extrude4_sk:
        Polygon((-21.5, 22), (-21.5, 10), (1.5, 10), (8, 10), (8, 15.3), (21.5, 15.3), (21.5, 22), align=None)
    extrude(amount=CUT_EXTRUDE4_DEPTH, mode=Mode.SUBTRACT)
    extrude(cut_extrude4_sk.sketch, amount=-CUT_EXTRUDE4_DEPTH_BACK, mode=Mode.SUBTRACT)

    # Sketch6 → Cut-Extrude5 (cut)
    with BuildSketch(Plane(origin=(0, 0, -31.5), x_dir=(-1, 0, 0), z_dir=(0, 0, -1))):
        with Locations((-65, 18)):
            Rectangle(SKETCH6_W, SKETCH6_H)
        with Locations((51.5, 18)):
            Rectangle(SKETCH6_W_2, SKETCH6_H)
    extrude(amount=-CUT_EXTRUDE5_DEPTH, mode=Mode.SUBTRACT)

    # Sketch7 → Cut-Extrude6 (cut, two sides)
    with BuildSketch(Plane.ZY.offset(95)) as cut_extrude6_sk:
        Polygon((-15.5, 22), (-15.5, 9.5), (-3.5, 9.5), (3.5, 9.5), (15.5, 9.5), (15.5, 22), align=None)
    extrude(amount=CUT_EXTRUDE6_DEPTH, mode=Mode.SUBTRACT)
    extrude(cut_extrude6_sk.sketch, amount=-CUT_EXTRUDE6_DEPTH_BACK, mode=Mode.SUBTRACT)


solid = part_1.part
